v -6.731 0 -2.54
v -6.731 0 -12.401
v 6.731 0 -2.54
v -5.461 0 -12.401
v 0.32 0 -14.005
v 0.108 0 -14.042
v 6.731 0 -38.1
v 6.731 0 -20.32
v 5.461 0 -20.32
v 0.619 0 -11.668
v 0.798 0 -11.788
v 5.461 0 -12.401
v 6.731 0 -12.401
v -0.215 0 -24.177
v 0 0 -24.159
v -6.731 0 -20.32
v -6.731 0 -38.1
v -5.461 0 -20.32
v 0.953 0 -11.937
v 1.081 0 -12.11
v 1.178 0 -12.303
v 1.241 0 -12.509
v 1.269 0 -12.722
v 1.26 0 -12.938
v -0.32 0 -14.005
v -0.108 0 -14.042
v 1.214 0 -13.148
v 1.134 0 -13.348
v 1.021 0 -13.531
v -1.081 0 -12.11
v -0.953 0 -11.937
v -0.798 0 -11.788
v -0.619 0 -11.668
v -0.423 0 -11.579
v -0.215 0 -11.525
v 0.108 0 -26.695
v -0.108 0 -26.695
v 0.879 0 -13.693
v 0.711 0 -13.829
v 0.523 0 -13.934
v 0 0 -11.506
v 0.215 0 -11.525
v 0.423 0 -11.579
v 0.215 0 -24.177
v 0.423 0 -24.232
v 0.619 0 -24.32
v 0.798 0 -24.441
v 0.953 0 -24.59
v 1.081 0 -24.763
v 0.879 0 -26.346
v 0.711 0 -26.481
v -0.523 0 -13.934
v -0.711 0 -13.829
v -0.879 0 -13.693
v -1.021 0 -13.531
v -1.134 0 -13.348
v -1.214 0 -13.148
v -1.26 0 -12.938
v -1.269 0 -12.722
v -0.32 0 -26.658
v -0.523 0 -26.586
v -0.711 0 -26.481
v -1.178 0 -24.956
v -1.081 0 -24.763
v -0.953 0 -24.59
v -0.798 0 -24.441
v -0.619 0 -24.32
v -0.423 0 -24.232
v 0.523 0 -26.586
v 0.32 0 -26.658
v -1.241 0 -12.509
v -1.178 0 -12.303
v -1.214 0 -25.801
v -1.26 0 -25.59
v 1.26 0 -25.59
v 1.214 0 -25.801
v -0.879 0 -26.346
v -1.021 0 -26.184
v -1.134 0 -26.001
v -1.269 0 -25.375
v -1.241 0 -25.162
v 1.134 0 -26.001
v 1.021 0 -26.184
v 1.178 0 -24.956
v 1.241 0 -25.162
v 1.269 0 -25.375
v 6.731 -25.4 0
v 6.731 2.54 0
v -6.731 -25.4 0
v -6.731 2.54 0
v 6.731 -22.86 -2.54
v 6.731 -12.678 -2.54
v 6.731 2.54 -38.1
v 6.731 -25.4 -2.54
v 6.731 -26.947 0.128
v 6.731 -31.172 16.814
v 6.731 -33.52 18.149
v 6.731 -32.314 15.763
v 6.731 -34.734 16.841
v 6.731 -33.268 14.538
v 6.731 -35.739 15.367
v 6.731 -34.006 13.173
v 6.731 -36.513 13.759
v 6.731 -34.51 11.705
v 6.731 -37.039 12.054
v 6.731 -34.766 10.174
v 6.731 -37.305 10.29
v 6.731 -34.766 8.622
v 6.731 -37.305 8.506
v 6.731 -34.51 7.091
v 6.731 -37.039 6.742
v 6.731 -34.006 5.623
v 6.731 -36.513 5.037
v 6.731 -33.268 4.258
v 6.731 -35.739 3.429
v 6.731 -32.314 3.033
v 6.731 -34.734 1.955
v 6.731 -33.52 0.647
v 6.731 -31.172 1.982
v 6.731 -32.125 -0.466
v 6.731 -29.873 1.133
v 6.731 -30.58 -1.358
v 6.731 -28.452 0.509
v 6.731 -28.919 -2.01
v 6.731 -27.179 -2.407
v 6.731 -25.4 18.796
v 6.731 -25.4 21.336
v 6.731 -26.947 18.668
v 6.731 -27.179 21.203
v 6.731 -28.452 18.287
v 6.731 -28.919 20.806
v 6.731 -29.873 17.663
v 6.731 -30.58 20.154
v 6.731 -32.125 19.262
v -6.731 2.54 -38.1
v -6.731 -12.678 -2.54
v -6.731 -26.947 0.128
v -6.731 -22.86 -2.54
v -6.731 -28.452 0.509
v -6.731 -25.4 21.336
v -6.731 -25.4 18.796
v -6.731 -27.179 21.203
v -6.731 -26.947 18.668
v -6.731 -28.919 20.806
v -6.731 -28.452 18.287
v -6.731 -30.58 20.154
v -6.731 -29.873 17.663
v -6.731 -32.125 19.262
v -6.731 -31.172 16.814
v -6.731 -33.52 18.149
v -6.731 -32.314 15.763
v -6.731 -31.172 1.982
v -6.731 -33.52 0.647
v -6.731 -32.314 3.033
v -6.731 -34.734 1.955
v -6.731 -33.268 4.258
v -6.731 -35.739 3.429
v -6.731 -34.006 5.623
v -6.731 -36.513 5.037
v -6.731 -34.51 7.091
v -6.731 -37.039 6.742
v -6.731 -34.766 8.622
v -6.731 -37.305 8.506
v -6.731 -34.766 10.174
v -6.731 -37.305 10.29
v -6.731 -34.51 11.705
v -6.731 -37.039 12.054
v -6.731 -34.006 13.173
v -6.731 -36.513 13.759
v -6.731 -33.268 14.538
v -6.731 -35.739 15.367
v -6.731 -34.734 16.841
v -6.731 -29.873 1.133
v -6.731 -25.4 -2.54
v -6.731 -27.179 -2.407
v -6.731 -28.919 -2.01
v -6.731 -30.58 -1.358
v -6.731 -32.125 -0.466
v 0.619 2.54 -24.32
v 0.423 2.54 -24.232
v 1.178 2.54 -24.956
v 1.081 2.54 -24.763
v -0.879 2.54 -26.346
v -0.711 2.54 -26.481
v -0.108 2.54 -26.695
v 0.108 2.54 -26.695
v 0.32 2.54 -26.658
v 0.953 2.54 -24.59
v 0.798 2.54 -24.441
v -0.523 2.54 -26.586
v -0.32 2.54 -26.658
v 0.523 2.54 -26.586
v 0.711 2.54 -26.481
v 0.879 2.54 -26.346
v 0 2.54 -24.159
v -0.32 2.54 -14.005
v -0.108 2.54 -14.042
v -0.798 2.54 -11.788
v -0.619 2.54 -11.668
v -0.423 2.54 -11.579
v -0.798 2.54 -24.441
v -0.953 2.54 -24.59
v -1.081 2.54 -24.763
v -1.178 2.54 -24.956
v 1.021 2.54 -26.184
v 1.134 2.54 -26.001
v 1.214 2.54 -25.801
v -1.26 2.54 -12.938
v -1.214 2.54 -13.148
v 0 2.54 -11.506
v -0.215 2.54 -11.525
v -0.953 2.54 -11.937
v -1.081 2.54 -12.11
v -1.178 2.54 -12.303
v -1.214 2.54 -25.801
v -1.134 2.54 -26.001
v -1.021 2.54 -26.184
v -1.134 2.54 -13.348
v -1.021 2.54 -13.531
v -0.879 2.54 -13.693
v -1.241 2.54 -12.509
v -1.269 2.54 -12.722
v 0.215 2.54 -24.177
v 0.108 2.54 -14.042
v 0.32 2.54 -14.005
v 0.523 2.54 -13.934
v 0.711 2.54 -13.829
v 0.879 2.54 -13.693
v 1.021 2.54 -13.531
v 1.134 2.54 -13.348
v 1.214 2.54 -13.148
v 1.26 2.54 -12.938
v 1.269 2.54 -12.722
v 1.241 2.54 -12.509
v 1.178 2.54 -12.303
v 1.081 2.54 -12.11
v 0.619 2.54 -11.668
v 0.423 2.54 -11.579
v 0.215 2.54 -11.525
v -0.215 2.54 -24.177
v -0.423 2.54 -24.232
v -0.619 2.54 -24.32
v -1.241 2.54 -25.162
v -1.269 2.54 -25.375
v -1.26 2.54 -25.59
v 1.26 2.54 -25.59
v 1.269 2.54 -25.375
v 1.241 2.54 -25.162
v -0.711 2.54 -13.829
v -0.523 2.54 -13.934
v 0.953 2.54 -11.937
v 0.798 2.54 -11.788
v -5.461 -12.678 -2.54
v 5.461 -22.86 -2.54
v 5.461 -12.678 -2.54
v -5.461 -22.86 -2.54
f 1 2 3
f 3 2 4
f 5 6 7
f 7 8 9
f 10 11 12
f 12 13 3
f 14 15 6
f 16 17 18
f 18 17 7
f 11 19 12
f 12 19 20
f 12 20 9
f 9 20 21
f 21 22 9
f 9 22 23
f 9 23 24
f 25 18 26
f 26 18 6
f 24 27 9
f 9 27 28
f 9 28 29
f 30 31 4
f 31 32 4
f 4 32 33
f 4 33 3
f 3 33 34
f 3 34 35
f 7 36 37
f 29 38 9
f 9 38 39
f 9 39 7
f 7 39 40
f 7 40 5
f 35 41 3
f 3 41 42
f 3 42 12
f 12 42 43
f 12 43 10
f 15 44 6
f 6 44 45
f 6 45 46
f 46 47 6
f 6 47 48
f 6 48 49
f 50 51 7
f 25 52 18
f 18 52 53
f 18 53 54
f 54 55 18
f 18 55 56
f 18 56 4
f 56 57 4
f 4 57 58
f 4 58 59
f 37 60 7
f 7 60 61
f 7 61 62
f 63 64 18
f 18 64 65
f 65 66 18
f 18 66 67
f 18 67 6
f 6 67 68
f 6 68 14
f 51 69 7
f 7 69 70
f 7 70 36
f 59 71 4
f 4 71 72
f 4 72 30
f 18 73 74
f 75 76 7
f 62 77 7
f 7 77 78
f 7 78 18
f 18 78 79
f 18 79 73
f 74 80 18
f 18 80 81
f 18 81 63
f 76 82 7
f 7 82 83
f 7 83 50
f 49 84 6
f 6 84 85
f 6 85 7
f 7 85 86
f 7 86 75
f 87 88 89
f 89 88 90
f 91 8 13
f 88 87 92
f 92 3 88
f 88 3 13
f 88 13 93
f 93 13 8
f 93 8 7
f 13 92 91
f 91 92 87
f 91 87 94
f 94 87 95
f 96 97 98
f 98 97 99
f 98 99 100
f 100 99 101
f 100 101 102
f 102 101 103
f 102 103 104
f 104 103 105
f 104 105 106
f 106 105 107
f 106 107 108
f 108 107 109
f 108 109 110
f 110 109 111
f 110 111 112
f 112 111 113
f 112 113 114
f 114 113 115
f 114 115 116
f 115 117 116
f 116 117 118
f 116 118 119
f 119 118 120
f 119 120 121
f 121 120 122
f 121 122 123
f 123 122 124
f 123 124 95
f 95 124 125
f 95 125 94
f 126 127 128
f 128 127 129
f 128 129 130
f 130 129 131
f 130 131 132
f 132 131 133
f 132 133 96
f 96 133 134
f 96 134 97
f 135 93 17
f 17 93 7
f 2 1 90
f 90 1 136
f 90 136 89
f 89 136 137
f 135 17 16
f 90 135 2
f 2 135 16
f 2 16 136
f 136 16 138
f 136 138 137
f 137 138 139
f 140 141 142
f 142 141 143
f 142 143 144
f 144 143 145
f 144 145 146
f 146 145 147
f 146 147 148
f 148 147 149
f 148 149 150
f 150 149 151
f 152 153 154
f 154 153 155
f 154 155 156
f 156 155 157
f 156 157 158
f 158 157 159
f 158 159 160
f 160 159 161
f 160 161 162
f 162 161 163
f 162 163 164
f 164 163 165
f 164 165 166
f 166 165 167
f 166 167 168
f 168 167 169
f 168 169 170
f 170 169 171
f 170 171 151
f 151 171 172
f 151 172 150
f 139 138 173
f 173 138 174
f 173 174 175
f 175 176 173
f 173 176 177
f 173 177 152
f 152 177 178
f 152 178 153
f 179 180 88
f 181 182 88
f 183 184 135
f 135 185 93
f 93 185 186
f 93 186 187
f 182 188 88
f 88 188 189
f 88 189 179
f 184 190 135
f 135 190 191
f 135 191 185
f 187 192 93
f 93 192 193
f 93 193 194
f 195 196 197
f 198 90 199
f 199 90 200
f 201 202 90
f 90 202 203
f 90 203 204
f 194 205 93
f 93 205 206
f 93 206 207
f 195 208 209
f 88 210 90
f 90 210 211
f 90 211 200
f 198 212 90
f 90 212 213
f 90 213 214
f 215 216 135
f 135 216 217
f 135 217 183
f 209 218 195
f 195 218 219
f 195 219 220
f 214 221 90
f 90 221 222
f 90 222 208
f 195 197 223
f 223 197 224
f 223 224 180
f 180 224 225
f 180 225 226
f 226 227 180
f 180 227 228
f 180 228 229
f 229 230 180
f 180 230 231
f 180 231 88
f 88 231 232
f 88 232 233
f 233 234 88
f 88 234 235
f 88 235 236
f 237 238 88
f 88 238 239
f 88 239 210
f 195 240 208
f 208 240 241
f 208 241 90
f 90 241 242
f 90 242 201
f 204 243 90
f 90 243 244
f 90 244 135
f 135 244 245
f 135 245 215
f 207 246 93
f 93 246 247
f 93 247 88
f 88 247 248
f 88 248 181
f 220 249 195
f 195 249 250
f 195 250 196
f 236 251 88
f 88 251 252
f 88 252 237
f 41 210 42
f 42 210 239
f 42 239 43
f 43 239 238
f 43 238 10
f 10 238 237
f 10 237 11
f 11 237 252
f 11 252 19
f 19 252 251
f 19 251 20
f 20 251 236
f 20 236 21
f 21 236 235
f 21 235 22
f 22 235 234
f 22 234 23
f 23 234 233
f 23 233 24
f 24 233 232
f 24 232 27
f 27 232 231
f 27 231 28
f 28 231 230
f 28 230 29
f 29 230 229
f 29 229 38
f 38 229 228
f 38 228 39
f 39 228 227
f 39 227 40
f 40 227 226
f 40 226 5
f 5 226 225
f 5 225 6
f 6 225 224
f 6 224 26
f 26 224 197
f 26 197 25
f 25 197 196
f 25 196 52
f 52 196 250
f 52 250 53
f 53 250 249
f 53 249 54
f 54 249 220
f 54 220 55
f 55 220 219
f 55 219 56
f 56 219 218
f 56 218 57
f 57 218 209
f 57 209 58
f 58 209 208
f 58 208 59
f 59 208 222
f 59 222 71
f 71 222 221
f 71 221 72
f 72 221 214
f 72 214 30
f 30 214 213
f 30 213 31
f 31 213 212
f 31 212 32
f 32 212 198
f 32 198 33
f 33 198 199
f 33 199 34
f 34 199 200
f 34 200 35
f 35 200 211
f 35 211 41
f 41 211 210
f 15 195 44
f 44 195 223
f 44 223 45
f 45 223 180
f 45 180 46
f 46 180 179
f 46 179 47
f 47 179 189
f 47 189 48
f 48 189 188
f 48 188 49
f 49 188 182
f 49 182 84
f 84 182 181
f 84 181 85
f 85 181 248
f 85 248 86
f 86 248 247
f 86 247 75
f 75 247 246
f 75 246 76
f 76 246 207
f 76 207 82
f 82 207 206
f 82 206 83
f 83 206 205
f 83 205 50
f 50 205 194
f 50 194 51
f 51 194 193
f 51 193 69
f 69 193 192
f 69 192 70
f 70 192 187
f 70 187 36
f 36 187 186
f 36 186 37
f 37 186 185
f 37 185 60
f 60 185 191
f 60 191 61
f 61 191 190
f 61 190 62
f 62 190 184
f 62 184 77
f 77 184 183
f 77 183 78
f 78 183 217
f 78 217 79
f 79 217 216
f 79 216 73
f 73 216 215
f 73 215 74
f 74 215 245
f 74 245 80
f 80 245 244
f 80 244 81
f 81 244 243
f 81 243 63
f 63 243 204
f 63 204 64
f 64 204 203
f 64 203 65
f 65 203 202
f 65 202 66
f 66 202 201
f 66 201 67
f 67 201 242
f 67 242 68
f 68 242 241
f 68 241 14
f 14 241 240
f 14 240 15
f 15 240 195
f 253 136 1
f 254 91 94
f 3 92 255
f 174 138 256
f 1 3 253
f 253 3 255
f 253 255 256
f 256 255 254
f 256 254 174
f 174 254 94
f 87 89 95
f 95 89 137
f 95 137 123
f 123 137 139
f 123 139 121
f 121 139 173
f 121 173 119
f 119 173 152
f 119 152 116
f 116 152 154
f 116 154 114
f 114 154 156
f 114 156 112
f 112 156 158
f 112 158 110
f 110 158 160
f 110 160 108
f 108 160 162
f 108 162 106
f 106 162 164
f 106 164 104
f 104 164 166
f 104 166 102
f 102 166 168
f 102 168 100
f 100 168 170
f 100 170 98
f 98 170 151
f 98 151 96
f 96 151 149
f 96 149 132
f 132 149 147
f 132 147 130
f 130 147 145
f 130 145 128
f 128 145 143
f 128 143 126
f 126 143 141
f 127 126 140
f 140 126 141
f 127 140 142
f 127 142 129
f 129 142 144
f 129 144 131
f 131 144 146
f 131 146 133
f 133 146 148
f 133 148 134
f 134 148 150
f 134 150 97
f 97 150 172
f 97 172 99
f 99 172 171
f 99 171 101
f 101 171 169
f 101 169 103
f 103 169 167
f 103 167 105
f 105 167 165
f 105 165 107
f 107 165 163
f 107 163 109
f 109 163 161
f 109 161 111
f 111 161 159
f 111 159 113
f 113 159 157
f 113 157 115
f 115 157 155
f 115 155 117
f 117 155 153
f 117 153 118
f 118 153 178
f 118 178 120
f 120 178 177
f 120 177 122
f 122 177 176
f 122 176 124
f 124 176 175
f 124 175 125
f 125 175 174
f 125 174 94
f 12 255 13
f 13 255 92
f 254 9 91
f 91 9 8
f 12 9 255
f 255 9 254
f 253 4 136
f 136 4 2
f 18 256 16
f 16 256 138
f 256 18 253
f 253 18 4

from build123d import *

# Parameters (mm, degrees)
BOSS_EXTRUDE1_DEPTH  = 2.54
SKETCH2_R            = 1.27
CUT_EXTRUDE1_DEPTH   = 5.334
SKETCH3_W            = 13.462
SKETCH3_H            = 27.94
BOSS_EXTRUDE2_DEPTH  = 2.54
BOSS_EXTRUDE3_DEPTH  = 13.462
BOSS_EXTRUDE7_DEPTH  = 1.27
BOSS_EXTRUDE12_DEPTH = 1.27


with BuildPart() as part:
    # Sketch1 → Boss-Extrude1 (new body)
    with BuildSketch(Plane(origin=(0, 0, 0), x_dir=(1, 0, 0), z_dir=(0, 1, 0))):
        Polygon((0, 0), (6.731, 0), (6.731, 38.1), (-6.731, 38.1), (-6.731, 0), align=None)
    extrude(amount=BOSS_EXTRUDE1_DEPTH)

    # Sketch2 → Cut-Extrude1 (cut)
    with BuildSketch(Plane(origin=(0, 2.54, 0), x_dir=(1, 0, 0), z_dir=(0, 1, 0))):
        with Locations(Location((0, 25.429147729, 0), (0, 0, 270))):
            Circle(SKETCH2_R)
        with Locations(Location((0, 12.776292729, 0), (0, 0, 270))):
            Circle(SKETCH2_R)
    extrude(amount=-CUT_EXTRUDE1_DEPTH, mode=Mode.SUBTRACT)

    # Sketch3 → Boss-Extrude2 (add)
    with BuildSketch(Plane.XY):
        with Locations((0, -11.43)):
            Rectangle(SKETCH3_W, SKETCH3_H)
    extrude(amount=-BOSS_EXTRUDE2_DEPTH)

    # Sketch4 → Boss-Extrude3 (add)
    with BuildSketch(Plane.ZY.offset(6.731)):
        with BuildLine():
            Line((0, -25.4), (-2.54, -25.4))
            ThreePointArc((-2.54, -25.4), (9.398, -37.338), (21.336, -25.4))
            Line((21.336, -25.4), (18.796, -25.4))
            ThreePointArc((18.796, -25.4), (9.398, -34.798), (0, -25.4))
        make_face()
    extrude(amount=-BOSS_EXTRUDE3_DEPTH)

    # Sketch8 → Boss-Extrude7 (add)
    with BuildSketch(Plane(origin=(6.731, 0, 0), x_dir=(0, 0, -1), z_dir=(1, 0, 0))):
        Polygon((2.54, -22.86), (20.32, 0), (12.400973841, 0), (2.54, -12.678394938), align=None)
    extrude(amount=-BOSS_EXTRUDE7_DEPTH)

    # Sketch9 → Boss-Extrude12 (add)
    with BuildSketch(Plane.ZY.offset(6.731)):
        Polygon((-2.54, -12.678394938), (-2.54, -22.86), (-20.32, 0), (-12.400973841, 0), align=None)
    extrude(amount=-BOSS_EXTRUDE12_DEPTH)


solid = part.part
